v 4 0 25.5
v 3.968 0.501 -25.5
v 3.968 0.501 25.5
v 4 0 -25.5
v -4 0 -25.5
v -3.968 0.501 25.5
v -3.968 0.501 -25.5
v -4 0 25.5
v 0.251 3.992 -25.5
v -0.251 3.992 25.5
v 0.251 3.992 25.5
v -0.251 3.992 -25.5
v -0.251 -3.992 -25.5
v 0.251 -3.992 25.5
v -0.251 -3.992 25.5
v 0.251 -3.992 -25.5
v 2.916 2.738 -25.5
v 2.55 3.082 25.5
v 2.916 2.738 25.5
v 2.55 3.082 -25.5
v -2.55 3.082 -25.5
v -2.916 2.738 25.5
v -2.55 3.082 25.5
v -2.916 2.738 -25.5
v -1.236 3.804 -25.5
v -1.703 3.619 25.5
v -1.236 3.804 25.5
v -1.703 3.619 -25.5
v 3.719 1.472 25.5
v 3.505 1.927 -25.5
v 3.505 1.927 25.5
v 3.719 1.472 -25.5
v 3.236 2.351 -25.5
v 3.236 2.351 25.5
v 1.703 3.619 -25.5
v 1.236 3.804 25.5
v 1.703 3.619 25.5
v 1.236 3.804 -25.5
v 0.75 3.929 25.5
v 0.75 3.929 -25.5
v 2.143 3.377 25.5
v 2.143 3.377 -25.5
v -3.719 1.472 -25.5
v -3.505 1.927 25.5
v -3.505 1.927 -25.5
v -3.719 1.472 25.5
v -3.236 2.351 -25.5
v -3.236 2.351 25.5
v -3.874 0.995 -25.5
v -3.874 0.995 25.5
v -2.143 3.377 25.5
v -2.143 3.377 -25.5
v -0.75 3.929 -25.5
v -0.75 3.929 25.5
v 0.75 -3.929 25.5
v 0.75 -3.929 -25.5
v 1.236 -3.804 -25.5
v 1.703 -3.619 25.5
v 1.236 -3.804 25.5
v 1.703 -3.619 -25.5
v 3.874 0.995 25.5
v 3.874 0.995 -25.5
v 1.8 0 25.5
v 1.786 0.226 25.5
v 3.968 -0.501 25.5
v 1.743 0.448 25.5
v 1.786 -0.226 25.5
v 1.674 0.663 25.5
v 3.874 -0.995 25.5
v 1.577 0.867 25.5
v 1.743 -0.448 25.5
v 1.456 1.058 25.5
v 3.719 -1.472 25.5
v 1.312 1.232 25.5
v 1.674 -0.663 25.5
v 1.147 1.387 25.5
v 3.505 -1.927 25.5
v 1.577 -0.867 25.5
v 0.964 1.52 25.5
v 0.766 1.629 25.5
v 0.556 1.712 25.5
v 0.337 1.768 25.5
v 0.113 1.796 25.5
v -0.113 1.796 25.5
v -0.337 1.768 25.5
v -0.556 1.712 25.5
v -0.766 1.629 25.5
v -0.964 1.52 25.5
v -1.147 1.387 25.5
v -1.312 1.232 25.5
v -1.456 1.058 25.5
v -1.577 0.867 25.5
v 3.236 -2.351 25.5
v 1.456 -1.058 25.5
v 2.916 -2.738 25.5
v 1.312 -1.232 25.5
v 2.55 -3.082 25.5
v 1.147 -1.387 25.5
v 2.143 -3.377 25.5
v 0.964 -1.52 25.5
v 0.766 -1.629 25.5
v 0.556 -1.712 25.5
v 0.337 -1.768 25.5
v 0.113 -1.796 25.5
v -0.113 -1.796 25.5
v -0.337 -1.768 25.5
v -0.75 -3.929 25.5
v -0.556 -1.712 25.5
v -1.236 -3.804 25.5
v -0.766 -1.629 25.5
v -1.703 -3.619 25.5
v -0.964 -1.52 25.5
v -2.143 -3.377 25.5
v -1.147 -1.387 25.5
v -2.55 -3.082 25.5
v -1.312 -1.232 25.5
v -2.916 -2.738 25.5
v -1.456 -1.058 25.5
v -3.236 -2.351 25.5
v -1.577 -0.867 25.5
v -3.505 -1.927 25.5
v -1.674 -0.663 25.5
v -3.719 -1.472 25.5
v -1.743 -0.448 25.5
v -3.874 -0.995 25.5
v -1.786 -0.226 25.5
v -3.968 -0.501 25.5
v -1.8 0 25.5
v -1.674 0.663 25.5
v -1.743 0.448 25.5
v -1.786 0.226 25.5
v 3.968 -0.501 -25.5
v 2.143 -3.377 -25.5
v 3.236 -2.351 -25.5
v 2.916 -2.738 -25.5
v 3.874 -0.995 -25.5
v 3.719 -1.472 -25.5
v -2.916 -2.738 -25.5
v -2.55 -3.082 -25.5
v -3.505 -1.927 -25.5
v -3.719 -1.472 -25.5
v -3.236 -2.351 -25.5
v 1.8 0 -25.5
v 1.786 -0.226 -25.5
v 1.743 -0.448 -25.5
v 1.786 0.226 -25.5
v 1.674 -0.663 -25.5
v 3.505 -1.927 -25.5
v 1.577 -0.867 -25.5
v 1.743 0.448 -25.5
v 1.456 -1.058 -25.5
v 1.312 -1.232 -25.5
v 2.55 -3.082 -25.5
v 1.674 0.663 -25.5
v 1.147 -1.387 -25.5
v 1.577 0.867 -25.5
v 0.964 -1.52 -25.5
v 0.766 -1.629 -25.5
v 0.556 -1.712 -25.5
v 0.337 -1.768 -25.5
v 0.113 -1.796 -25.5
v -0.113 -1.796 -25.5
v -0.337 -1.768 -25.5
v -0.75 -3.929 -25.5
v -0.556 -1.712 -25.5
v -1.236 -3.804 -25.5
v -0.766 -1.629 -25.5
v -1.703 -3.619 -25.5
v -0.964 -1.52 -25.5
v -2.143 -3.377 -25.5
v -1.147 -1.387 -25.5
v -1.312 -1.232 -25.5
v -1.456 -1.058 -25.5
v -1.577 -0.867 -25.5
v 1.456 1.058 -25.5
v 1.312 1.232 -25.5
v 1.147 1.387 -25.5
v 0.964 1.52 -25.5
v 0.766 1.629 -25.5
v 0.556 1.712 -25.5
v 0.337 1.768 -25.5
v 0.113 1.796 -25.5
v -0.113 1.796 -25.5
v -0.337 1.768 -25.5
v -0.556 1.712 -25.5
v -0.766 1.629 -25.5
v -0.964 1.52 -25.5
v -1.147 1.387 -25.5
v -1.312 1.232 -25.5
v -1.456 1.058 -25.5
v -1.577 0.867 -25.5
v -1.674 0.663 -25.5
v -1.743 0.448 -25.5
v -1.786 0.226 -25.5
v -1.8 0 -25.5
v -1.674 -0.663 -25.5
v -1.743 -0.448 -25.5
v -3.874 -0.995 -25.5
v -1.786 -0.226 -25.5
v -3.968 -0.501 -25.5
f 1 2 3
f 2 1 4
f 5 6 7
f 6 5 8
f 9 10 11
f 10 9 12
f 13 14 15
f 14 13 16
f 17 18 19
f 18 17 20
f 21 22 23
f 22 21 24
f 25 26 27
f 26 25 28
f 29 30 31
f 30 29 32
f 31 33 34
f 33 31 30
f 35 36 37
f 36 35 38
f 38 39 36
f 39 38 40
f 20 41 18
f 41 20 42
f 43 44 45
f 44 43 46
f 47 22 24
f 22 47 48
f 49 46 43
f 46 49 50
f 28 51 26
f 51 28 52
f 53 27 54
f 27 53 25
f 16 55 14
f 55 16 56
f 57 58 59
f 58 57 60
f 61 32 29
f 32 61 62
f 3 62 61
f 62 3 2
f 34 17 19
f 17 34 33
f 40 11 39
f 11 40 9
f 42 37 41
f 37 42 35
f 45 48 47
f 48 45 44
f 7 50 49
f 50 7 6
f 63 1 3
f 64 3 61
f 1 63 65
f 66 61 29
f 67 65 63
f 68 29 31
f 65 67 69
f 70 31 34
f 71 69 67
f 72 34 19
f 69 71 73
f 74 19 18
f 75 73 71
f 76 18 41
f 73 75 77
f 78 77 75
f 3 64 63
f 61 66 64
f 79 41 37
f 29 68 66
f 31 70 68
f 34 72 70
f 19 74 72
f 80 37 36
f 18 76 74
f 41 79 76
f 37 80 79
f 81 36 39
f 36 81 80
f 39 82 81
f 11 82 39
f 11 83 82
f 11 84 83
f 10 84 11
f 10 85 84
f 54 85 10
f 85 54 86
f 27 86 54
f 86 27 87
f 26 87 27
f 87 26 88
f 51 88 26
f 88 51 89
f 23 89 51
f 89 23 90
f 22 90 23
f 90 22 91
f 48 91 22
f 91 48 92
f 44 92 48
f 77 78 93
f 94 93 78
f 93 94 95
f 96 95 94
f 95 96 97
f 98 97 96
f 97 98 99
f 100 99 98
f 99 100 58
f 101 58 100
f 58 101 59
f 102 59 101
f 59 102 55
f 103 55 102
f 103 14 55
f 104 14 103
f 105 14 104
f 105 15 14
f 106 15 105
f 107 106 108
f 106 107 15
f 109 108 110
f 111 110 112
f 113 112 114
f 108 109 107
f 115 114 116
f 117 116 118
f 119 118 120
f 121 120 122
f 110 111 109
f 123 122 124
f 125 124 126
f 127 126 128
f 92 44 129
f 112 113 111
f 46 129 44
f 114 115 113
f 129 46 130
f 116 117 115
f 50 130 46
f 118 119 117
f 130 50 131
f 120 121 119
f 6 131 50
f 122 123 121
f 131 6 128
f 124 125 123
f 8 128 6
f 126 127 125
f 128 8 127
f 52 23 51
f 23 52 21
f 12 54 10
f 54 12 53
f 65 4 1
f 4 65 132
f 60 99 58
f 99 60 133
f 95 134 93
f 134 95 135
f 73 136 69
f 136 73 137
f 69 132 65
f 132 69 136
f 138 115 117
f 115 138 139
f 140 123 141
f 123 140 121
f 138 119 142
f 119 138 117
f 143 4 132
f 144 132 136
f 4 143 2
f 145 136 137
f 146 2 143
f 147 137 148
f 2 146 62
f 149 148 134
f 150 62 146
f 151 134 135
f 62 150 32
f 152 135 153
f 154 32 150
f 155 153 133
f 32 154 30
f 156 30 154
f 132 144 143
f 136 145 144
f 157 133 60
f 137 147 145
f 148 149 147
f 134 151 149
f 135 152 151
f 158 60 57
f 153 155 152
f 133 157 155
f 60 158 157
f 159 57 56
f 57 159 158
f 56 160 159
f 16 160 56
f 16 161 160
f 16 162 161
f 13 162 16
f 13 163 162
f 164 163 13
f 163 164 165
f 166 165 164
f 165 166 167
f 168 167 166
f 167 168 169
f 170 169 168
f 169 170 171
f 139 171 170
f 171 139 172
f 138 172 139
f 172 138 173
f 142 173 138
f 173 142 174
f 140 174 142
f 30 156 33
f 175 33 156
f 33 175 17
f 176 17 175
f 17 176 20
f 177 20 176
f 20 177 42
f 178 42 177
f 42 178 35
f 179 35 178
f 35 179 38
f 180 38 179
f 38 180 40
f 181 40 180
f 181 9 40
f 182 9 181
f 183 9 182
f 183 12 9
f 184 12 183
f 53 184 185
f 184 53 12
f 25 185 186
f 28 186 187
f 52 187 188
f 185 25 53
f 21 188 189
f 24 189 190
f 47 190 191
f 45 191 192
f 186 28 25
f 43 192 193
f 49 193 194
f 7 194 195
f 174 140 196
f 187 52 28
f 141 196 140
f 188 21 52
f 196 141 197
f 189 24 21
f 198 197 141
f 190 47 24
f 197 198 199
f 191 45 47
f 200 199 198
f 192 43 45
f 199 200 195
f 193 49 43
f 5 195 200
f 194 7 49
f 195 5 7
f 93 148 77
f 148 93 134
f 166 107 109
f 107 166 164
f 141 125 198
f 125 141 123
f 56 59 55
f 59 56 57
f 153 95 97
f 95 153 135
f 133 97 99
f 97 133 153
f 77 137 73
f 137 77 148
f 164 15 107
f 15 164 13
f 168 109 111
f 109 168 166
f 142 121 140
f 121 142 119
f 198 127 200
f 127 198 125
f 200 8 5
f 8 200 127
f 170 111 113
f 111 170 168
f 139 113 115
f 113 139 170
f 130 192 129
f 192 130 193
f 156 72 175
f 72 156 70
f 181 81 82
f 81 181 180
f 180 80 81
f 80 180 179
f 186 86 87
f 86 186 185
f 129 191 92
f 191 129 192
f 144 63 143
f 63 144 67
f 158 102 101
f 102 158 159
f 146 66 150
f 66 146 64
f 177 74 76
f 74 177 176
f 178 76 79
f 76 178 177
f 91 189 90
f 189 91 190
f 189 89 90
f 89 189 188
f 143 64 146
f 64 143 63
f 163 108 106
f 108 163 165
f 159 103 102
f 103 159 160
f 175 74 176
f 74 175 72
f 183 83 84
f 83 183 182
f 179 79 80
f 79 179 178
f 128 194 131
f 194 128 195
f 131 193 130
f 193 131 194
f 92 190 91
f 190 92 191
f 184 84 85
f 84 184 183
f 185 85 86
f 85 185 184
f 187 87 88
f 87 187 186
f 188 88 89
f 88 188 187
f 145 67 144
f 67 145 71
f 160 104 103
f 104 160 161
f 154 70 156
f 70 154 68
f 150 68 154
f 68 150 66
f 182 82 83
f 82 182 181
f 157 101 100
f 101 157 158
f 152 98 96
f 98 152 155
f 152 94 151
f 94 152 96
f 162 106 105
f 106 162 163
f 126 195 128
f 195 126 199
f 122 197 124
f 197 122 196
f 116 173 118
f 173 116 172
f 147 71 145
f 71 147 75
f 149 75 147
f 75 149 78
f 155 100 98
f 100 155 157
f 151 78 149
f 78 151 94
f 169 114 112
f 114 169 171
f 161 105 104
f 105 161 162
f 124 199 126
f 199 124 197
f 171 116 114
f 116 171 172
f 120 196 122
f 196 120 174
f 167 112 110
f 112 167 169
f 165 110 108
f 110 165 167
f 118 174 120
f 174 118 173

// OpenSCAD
$fn = 50;


difference() {
	union() {
		translate(v = [0, 0, -25.5000000000]) {
			cylinder(h = 51, r = 4.0000000000);
		}
	}
	union() {
		translate(v = [0, 0, -100.0000000000]) {
			cylinder(h = 200, r = 1.8000000000);
		}
	}
}
